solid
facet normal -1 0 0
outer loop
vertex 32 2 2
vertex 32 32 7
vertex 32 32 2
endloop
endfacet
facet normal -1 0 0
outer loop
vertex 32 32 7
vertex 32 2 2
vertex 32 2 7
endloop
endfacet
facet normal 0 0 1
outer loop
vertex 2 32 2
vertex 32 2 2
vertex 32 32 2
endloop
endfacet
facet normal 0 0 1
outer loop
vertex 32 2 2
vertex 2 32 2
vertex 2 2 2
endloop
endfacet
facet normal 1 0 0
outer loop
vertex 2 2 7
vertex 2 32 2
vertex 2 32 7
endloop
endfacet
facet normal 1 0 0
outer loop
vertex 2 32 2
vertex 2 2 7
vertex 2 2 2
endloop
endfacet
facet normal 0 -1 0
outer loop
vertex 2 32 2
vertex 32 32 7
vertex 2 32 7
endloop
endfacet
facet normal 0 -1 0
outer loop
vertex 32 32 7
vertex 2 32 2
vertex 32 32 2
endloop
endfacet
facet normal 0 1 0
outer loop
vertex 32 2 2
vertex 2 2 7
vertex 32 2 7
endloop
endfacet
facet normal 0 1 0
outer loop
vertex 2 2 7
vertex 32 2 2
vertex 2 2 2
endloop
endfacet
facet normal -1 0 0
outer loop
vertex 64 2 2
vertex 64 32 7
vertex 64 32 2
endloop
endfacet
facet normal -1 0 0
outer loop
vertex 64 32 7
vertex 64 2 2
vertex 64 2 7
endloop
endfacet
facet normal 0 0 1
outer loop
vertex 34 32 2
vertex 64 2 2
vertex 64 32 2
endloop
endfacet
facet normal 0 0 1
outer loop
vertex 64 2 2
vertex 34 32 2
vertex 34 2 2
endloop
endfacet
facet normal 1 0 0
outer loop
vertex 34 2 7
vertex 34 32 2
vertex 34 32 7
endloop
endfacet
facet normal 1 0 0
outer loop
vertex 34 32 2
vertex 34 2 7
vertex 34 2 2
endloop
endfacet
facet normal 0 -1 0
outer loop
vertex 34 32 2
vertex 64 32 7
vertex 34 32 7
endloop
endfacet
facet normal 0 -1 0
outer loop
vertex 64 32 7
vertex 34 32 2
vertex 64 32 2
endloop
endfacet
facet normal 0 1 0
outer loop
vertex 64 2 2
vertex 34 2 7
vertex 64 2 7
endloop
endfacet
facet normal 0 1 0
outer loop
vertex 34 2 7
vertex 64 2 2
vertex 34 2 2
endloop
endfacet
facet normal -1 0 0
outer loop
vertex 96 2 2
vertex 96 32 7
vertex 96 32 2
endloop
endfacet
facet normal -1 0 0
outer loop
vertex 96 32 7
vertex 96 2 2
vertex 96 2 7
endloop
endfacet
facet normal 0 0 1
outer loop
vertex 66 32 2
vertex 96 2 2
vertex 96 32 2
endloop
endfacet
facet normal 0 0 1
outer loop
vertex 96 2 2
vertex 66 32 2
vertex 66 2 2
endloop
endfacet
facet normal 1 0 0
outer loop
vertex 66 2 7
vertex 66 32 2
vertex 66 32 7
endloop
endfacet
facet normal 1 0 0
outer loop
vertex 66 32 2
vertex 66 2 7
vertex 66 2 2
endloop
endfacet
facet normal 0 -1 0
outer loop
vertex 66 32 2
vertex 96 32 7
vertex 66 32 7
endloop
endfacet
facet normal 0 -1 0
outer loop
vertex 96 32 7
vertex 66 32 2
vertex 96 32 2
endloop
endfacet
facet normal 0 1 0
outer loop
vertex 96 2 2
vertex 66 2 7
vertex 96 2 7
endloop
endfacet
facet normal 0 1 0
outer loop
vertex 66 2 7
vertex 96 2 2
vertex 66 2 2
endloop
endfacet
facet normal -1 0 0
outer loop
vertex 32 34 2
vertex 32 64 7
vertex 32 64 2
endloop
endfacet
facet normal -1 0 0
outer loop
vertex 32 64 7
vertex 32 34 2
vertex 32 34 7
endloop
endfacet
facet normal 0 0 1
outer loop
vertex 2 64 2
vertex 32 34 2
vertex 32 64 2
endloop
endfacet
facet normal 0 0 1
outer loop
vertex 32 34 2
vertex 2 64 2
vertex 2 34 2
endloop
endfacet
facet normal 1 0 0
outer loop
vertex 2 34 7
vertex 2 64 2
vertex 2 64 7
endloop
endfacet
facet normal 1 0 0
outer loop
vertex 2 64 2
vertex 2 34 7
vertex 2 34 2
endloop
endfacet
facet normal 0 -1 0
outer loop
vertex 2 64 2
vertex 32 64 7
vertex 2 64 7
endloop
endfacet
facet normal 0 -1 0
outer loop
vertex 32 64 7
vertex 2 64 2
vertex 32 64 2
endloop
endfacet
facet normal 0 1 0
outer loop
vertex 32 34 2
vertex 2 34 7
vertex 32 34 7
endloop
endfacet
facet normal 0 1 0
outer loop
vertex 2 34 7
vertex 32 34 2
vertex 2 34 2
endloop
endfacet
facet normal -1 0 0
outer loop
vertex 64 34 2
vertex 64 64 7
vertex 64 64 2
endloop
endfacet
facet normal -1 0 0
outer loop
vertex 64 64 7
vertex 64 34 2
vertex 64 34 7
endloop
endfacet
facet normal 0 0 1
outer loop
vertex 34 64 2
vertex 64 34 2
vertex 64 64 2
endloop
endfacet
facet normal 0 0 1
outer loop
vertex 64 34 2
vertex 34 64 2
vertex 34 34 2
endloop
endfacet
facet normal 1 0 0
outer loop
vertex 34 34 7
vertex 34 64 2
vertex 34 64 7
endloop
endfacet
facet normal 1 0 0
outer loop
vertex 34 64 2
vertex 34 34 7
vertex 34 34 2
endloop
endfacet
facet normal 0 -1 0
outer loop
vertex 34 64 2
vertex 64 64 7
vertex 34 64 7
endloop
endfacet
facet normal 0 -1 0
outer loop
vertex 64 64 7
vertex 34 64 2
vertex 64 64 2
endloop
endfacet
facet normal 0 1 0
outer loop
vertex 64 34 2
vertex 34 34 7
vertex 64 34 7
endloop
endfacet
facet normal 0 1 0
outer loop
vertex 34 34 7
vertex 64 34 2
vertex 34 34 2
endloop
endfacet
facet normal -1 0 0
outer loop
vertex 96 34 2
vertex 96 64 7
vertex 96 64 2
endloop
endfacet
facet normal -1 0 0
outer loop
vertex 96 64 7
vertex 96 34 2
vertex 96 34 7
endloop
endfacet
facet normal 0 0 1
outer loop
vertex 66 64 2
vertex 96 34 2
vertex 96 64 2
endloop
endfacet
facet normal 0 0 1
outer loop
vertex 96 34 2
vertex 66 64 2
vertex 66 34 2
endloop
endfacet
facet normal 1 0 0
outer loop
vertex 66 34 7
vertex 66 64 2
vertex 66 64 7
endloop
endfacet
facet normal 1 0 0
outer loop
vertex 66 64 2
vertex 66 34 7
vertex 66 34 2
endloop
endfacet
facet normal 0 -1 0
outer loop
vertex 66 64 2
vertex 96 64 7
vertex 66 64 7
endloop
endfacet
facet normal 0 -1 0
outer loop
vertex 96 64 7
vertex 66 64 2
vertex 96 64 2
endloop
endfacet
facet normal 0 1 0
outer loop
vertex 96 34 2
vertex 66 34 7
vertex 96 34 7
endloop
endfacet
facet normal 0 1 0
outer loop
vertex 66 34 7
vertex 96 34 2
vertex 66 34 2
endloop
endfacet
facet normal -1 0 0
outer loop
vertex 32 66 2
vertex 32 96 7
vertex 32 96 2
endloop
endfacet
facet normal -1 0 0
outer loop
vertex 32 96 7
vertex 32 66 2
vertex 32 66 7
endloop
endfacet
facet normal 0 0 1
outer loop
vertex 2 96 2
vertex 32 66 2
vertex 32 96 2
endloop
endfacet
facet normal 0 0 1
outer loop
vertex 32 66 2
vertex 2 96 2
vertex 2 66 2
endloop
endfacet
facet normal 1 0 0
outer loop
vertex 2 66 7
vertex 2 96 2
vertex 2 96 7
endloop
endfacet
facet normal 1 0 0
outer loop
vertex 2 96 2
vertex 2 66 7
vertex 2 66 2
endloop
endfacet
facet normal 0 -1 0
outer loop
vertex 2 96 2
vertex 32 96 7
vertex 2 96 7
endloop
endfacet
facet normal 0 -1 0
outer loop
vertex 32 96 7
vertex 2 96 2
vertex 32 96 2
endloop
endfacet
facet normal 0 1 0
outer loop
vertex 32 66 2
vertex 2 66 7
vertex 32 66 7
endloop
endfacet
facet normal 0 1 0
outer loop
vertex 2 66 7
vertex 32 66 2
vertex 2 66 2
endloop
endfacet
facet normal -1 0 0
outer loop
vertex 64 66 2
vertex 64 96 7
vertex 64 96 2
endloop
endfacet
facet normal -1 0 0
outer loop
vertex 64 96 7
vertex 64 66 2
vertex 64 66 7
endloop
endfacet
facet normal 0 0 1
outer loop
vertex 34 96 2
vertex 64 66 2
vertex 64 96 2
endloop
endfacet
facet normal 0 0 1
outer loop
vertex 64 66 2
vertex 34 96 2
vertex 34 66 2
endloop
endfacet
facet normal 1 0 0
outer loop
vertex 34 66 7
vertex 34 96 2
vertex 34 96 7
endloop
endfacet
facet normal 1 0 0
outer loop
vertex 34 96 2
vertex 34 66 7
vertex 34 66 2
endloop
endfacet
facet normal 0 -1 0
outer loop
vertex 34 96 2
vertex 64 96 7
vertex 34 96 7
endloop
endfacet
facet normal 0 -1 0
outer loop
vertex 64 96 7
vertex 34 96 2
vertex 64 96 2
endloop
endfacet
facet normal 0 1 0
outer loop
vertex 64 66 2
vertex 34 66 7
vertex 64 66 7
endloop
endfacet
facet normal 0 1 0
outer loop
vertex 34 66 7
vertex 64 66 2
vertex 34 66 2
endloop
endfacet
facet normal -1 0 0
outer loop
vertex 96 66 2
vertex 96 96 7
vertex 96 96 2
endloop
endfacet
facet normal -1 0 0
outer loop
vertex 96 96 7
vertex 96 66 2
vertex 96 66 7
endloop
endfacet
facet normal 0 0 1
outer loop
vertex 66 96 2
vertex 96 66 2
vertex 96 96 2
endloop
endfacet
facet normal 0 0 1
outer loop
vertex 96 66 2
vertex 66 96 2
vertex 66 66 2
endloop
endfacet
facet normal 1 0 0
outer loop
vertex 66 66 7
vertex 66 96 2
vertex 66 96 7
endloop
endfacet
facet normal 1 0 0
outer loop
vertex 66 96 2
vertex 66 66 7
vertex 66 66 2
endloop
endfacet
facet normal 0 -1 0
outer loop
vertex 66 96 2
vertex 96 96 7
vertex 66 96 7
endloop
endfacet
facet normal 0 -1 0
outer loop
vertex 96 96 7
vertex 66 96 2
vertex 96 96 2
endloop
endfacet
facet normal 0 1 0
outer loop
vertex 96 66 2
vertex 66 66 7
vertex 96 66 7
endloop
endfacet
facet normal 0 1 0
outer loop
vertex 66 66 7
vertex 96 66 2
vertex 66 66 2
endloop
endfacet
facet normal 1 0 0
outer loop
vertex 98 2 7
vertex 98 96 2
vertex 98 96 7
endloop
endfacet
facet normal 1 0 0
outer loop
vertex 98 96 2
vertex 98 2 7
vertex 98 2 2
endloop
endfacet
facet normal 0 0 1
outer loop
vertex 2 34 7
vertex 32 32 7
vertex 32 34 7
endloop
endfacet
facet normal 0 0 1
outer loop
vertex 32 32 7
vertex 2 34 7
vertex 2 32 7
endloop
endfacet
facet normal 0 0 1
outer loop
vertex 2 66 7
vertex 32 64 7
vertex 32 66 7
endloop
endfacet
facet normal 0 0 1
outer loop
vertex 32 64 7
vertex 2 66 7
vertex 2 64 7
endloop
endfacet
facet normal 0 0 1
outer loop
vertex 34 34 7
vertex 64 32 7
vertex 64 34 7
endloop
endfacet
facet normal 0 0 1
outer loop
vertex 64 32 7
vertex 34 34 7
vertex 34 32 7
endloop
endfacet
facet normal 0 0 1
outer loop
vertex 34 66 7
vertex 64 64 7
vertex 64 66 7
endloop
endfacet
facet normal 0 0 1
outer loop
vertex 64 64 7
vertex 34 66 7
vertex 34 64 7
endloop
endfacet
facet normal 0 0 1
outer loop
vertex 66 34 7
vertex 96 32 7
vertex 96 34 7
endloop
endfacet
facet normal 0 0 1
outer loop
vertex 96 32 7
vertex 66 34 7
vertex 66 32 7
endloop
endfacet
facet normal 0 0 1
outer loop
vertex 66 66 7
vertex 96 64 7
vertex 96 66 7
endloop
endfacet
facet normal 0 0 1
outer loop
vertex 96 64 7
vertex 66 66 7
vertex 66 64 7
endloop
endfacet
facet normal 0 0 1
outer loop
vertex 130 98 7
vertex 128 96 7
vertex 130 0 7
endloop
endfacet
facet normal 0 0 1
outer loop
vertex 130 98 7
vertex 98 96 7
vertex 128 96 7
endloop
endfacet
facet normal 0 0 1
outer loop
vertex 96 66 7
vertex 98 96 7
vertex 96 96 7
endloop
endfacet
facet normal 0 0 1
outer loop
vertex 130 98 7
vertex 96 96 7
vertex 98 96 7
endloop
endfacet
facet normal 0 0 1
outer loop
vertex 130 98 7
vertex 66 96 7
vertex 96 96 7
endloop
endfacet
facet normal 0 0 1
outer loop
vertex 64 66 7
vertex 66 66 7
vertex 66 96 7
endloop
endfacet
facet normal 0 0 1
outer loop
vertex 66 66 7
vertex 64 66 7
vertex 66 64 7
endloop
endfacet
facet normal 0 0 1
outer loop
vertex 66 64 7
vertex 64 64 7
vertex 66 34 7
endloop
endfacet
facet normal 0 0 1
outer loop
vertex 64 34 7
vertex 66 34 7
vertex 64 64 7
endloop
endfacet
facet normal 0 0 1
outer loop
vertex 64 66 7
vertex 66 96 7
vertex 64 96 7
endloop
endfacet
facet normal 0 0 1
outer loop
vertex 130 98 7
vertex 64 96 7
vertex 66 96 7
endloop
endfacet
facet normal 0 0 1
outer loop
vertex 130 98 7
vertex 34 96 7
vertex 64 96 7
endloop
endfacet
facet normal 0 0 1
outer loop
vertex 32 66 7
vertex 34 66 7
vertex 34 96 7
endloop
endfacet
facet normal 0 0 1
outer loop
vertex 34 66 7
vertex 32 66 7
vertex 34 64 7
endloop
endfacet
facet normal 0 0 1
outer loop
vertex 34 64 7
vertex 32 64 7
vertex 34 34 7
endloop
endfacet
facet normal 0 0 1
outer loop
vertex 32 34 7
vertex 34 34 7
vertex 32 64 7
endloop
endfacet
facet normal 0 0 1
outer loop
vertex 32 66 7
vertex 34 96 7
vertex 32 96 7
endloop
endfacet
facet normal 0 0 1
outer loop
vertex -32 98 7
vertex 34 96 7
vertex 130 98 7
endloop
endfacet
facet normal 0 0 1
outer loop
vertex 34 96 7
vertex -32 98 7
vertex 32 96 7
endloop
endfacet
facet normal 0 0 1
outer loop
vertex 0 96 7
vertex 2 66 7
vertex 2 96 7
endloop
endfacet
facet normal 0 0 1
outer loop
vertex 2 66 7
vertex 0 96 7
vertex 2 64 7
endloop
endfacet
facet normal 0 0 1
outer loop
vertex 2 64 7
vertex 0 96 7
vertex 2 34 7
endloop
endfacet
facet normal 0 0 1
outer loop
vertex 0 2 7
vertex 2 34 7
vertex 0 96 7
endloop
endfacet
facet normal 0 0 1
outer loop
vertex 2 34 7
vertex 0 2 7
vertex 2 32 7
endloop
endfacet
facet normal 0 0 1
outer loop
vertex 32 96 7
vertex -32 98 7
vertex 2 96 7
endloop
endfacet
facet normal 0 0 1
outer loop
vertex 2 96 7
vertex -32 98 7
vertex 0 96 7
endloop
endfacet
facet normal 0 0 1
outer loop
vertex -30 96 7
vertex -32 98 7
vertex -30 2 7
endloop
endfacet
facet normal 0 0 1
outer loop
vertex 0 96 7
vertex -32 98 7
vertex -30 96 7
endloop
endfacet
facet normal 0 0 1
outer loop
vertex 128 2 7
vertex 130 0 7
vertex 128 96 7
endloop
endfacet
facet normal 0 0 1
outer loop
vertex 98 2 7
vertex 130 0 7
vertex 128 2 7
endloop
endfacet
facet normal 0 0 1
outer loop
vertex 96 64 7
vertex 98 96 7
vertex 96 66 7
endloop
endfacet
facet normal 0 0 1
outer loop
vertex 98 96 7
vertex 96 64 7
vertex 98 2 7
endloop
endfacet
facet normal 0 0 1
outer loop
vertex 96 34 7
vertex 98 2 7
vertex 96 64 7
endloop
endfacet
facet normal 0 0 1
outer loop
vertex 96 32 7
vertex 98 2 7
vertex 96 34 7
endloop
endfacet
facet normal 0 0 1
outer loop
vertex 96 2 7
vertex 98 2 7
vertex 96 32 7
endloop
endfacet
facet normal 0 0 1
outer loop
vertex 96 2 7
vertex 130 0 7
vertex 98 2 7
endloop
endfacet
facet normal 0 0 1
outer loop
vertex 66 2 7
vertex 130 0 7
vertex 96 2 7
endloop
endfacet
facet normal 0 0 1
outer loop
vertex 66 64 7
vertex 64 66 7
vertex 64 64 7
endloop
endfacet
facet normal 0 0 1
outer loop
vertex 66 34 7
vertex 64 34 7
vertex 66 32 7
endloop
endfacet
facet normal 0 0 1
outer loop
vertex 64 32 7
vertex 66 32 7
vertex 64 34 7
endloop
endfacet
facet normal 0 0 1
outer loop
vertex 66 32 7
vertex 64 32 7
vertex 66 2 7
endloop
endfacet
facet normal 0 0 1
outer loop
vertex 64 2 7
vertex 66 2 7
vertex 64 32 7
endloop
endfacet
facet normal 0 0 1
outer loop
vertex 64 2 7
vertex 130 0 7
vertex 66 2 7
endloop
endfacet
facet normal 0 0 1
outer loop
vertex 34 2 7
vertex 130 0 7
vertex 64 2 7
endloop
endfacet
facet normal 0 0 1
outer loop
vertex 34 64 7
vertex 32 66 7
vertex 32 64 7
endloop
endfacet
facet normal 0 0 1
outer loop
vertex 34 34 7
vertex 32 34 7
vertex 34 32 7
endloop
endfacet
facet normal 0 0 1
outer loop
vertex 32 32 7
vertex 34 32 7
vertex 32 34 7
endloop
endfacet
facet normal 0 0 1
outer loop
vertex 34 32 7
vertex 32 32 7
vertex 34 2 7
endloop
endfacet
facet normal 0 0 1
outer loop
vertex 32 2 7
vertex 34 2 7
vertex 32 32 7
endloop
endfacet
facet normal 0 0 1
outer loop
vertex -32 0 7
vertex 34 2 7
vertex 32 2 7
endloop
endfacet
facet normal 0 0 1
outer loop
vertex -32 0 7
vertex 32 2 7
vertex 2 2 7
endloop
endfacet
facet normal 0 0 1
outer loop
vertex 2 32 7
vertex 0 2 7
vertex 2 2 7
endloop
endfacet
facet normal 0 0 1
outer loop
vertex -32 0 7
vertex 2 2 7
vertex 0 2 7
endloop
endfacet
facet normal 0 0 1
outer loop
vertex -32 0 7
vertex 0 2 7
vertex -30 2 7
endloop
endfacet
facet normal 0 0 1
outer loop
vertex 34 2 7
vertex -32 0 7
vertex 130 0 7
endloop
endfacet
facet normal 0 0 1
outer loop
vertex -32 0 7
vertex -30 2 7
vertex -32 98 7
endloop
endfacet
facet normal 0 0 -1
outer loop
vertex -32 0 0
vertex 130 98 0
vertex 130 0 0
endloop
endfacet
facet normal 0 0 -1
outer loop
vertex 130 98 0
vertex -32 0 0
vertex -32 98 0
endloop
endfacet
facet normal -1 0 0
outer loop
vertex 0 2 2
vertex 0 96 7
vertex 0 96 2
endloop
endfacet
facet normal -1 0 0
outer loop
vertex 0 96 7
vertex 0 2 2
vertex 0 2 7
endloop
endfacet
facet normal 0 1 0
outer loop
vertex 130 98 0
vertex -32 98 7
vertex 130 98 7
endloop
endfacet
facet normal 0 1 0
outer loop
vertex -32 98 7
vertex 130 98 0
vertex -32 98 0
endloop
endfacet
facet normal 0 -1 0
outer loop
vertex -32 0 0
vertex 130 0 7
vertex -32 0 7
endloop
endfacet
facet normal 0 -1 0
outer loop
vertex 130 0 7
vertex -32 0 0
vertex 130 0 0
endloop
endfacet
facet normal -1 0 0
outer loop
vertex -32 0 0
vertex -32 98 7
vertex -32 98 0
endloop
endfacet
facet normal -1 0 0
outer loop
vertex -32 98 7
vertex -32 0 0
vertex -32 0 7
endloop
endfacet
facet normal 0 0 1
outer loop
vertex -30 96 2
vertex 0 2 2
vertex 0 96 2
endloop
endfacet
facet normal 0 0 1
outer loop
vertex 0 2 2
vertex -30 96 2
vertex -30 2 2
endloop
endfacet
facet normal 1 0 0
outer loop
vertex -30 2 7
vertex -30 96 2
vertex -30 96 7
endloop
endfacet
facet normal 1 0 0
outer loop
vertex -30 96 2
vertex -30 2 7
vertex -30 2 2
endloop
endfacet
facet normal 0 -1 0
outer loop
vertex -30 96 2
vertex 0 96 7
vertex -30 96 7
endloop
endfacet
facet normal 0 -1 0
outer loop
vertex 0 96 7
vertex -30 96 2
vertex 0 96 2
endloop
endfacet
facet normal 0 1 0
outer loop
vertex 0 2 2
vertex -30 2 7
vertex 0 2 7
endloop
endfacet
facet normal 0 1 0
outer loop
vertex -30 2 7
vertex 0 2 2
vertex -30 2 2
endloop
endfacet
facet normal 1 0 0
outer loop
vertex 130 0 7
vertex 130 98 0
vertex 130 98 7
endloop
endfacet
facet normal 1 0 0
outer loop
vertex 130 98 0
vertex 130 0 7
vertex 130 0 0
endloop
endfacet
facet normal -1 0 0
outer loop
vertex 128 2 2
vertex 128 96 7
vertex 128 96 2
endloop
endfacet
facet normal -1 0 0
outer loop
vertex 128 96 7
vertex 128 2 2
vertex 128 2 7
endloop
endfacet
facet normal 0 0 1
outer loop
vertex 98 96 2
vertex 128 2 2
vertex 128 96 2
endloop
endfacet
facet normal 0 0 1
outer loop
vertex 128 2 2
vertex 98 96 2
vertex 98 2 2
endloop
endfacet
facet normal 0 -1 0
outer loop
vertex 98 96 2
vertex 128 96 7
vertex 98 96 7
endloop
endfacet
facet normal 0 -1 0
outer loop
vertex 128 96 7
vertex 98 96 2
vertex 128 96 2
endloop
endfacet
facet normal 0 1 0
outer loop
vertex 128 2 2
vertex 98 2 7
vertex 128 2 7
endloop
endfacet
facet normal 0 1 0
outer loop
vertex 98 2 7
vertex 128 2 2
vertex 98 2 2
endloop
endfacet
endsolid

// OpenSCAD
cellx = 30;
celly = 30;
cell_space = 2;
height = cell_space + 5;

boardx = (3 * cellx) + (4 * cell_space);
boardy = (3 * celly) + (4 * cell_space);

difference() {
  cube([boardx, boardy, height], false);

  for(y = [1:3]) {
    for(x = [1:3]) {
      color("blue") translate([(cellx * (x -1)) + (cell_space * x), (celly * (y -1)) + (cell_space * y), cell_space]) cube([cellx, celly, height]);

    }
  }
}

difference() {
  color("pink") translate([-1 * (cell_space + cellx), 0, 0]) cube([cellx + cell_space, boardy, height]);
  color("red") translate([-1 * (cellx), cell_space, cell_space]) cube([cellx, boardy - (2 * cell_space), height]);
}


difference() {
  color("lightgreen") translate([boardx, 0, 0]) cube([cellx + cell_space, boardy, height]);
  color("red") translate([boardx, cell_space, cell_space]) cube([cellx, boardy - (2 * cell_space), height]);
}
